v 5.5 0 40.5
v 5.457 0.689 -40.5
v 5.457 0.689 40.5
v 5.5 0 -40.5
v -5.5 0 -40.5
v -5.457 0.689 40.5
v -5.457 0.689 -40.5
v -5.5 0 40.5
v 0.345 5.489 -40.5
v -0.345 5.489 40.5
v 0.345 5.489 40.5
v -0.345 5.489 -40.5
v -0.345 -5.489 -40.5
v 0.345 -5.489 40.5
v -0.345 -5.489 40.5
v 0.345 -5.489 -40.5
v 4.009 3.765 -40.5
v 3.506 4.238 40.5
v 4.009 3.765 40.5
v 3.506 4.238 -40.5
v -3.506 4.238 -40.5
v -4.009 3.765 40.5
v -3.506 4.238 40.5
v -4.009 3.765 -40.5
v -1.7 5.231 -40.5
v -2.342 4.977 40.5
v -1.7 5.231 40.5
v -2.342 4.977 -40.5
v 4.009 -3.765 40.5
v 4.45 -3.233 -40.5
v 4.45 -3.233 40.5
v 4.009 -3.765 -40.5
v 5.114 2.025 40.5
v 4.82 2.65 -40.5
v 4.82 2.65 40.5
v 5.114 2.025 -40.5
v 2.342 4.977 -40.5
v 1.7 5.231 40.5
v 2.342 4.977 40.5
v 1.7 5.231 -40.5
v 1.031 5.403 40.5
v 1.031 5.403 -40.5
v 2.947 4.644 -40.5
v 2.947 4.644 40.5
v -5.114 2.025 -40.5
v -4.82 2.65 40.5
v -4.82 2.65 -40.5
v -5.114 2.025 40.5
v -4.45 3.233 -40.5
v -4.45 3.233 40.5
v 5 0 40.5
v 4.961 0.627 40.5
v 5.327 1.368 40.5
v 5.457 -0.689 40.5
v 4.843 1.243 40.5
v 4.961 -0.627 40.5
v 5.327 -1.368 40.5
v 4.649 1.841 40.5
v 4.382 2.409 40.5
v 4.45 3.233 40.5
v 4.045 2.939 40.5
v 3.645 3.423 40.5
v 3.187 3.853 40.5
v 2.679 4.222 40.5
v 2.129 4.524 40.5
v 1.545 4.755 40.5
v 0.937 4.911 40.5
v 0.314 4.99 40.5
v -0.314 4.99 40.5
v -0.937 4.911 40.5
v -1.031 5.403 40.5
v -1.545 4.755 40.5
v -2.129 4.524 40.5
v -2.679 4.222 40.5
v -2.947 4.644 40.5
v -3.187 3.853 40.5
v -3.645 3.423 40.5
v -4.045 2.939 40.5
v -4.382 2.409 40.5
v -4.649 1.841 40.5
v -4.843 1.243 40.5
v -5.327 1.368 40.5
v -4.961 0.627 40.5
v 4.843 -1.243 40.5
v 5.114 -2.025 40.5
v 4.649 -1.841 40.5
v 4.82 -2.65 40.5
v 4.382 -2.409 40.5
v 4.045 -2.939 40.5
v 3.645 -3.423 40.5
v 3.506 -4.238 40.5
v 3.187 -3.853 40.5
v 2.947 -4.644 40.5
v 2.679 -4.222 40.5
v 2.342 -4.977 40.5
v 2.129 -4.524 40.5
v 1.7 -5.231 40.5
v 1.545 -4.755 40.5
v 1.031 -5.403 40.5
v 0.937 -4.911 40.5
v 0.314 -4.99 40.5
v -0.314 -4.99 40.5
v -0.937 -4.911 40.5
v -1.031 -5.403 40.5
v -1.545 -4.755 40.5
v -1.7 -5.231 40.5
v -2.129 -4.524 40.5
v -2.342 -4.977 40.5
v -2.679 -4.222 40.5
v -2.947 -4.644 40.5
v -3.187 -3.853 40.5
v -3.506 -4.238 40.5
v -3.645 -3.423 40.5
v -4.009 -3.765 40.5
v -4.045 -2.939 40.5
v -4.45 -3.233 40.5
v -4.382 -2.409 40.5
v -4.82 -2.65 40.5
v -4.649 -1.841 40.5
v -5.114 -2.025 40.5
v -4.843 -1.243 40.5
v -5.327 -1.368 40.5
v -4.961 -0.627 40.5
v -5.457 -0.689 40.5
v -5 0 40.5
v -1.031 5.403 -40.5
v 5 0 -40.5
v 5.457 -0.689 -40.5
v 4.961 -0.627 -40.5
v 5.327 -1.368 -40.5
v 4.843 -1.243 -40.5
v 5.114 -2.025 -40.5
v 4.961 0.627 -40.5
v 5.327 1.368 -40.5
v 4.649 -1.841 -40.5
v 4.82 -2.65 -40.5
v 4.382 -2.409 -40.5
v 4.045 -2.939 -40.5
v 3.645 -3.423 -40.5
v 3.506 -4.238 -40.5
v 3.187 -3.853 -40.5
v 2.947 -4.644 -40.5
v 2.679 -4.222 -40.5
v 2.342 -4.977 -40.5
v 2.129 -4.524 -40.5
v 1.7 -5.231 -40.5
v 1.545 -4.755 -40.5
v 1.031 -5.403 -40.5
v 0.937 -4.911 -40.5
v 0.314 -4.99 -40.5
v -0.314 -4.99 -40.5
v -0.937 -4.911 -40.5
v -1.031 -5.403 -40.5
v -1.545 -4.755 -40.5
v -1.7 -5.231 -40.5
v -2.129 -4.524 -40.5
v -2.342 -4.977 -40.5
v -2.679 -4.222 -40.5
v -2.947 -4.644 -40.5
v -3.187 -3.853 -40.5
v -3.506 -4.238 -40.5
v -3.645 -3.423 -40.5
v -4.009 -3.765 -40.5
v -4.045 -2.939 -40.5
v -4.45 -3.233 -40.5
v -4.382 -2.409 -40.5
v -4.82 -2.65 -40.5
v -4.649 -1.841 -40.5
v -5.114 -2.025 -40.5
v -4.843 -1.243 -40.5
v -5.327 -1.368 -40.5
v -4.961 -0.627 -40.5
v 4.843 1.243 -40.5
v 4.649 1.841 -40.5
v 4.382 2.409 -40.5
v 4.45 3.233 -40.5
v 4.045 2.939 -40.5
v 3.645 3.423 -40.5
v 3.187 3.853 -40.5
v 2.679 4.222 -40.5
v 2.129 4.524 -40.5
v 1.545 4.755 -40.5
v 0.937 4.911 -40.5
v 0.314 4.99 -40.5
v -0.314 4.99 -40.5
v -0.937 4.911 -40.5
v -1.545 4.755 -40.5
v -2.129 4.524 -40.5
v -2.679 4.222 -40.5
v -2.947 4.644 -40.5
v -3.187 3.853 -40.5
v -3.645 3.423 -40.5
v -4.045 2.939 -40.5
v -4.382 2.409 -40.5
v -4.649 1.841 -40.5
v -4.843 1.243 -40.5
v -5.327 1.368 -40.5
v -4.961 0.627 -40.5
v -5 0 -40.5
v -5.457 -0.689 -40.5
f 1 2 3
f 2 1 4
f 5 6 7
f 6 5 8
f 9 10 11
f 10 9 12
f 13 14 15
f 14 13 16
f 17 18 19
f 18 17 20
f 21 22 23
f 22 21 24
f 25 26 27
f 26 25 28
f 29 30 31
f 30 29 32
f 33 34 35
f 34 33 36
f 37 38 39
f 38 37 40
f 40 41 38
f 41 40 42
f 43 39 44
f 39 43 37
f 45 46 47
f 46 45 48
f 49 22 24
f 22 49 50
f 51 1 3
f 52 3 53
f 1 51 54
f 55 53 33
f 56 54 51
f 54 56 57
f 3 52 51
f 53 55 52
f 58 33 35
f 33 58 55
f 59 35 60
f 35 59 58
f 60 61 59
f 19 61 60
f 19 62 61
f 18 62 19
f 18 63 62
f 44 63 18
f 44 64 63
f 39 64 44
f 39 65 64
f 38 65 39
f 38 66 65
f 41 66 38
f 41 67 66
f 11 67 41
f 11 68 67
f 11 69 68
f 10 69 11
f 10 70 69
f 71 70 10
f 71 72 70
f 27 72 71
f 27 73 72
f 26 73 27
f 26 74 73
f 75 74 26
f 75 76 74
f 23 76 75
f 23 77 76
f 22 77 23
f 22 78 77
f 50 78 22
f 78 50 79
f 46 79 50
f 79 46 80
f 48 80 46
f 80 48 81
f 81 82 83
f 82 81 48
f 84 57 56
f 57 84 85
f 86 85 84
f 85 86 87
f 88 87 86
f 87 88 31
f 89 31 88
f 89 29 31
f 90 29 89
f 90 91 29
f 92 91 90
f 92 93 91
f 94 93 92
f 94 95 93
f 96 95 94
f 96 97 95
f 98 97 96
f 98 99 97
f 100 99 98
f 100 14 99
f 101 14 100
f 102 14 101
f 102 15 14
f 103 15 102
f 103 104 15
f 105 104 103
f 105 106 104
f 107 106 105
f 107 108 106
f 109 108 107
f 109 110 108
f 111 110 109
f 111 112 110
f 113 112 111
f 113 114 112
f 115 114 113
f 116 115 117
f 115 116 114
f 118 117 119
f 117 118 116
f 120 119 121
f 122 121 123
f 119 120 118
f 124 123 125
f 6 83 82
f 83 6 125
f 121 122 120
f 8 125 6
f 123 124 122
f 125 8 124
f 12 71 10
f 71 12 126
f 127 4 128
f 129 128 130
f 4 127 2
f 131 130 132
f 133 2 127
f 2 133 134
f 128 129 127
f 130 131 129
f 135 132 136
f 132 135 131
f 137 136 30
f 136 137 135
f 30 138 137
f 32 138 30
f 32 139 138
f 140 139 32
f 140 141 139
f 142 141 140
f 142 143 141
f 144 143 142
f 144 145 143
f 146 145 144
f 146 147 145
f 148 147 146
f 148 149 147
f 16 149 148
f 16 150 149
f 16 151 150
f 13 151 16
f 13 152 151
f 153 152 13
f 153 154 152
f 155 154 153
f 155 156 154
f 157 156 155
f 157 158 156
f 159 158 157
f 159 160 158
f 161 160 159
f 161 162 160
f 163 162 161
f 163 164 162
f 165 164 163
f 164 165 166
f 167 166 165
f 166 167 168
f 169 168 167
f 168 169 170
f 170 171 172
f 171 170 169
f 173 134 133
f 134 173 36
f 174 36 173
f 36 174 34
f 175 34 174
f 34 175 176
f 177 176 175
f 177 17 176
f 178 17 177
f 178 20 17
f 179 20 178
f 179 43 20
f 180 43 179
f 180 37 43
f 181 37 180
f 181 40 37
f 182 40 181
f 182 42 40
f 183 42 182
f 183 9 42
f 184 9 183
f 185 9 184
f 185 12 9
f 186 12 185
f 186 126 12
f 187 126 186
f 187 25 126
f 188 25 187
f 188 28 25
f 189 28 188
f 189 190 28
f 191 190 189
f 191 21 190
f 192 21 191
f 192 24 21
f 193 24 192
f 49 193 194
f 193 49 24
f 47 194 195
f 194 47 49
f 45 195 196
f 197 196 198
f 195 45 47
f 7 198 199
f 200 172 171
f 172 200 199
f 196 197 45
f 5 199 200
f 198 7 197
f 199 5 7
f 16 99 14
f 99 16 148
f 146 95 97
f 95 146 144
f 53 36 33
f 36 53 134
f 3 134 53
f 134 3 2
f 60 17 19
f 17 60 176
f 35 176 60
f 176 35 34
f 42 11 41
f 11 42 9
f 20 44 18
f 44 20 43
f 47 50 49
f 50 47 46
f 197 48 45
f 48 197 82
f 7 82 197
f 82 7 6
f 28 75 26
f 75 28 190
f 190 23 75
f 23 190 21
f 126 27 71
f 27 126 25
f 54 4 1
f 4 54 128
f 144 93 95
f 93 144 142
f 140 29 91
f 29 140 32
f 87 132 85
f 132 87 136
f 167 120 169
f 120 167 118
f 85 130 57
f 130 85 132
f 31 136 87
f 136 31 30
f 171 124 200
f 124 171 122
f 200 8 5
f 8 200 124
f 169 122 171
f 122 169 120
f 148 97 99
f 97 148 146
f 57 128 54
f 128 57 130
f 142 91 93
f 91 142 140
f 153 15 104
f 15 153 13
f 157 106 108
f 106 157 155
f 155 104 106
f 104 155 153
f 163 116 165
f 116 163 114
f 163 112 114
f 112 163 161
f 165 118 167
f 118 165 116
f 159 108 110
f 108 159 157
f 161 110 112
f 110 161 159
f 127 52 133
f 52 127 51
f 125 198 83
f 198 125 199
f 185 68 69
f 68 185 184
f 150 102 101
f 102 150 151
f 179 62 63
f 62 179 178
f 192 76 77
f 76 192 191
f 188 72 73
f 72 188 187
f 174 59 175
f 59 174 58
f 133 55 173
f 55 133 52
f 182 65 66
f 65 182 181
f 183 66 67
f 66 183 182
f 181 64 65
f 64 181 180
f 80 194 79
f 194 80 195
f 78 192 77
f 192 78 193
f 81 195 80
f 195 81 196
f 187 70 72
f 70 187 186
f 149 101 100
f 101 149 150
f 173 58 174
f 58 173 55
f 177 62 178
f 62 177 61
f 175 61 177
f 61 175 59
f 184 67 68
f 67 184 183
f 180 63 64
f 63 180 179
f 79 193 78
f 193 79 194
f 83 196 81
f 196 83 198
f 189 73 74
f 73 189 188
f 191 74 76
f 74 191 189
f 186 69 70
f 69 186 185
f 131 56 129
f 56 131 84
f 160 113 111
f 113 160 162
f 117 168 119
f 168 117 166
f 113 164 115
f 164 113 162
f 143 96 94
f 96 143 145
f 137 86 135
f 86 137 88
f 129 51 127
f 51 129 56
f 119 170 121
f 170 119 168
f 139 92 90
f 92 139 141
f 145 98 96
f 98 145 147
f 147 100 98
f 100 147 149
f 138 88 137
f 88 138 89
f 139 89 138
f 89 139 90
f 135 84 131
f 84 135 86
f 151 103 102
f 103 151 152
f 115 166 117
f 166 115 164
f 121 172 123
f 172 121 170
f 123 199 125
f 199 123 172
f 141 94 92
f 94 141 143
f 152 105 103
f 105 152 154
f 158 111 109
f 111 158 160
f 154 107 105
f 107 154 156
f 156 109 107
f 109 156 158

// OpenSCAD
$fn = 50;


difference() {
	union() {
		translate(v = [0, 0, -40.5000000000]) {
			cylinder(h = 81, r = 5.5000000000);
		}
	}
	union() {
		translate(v = [0, 0, -100.0000000000]) {
			cylinder(h = 200, r = 5);
		}
	}
}
